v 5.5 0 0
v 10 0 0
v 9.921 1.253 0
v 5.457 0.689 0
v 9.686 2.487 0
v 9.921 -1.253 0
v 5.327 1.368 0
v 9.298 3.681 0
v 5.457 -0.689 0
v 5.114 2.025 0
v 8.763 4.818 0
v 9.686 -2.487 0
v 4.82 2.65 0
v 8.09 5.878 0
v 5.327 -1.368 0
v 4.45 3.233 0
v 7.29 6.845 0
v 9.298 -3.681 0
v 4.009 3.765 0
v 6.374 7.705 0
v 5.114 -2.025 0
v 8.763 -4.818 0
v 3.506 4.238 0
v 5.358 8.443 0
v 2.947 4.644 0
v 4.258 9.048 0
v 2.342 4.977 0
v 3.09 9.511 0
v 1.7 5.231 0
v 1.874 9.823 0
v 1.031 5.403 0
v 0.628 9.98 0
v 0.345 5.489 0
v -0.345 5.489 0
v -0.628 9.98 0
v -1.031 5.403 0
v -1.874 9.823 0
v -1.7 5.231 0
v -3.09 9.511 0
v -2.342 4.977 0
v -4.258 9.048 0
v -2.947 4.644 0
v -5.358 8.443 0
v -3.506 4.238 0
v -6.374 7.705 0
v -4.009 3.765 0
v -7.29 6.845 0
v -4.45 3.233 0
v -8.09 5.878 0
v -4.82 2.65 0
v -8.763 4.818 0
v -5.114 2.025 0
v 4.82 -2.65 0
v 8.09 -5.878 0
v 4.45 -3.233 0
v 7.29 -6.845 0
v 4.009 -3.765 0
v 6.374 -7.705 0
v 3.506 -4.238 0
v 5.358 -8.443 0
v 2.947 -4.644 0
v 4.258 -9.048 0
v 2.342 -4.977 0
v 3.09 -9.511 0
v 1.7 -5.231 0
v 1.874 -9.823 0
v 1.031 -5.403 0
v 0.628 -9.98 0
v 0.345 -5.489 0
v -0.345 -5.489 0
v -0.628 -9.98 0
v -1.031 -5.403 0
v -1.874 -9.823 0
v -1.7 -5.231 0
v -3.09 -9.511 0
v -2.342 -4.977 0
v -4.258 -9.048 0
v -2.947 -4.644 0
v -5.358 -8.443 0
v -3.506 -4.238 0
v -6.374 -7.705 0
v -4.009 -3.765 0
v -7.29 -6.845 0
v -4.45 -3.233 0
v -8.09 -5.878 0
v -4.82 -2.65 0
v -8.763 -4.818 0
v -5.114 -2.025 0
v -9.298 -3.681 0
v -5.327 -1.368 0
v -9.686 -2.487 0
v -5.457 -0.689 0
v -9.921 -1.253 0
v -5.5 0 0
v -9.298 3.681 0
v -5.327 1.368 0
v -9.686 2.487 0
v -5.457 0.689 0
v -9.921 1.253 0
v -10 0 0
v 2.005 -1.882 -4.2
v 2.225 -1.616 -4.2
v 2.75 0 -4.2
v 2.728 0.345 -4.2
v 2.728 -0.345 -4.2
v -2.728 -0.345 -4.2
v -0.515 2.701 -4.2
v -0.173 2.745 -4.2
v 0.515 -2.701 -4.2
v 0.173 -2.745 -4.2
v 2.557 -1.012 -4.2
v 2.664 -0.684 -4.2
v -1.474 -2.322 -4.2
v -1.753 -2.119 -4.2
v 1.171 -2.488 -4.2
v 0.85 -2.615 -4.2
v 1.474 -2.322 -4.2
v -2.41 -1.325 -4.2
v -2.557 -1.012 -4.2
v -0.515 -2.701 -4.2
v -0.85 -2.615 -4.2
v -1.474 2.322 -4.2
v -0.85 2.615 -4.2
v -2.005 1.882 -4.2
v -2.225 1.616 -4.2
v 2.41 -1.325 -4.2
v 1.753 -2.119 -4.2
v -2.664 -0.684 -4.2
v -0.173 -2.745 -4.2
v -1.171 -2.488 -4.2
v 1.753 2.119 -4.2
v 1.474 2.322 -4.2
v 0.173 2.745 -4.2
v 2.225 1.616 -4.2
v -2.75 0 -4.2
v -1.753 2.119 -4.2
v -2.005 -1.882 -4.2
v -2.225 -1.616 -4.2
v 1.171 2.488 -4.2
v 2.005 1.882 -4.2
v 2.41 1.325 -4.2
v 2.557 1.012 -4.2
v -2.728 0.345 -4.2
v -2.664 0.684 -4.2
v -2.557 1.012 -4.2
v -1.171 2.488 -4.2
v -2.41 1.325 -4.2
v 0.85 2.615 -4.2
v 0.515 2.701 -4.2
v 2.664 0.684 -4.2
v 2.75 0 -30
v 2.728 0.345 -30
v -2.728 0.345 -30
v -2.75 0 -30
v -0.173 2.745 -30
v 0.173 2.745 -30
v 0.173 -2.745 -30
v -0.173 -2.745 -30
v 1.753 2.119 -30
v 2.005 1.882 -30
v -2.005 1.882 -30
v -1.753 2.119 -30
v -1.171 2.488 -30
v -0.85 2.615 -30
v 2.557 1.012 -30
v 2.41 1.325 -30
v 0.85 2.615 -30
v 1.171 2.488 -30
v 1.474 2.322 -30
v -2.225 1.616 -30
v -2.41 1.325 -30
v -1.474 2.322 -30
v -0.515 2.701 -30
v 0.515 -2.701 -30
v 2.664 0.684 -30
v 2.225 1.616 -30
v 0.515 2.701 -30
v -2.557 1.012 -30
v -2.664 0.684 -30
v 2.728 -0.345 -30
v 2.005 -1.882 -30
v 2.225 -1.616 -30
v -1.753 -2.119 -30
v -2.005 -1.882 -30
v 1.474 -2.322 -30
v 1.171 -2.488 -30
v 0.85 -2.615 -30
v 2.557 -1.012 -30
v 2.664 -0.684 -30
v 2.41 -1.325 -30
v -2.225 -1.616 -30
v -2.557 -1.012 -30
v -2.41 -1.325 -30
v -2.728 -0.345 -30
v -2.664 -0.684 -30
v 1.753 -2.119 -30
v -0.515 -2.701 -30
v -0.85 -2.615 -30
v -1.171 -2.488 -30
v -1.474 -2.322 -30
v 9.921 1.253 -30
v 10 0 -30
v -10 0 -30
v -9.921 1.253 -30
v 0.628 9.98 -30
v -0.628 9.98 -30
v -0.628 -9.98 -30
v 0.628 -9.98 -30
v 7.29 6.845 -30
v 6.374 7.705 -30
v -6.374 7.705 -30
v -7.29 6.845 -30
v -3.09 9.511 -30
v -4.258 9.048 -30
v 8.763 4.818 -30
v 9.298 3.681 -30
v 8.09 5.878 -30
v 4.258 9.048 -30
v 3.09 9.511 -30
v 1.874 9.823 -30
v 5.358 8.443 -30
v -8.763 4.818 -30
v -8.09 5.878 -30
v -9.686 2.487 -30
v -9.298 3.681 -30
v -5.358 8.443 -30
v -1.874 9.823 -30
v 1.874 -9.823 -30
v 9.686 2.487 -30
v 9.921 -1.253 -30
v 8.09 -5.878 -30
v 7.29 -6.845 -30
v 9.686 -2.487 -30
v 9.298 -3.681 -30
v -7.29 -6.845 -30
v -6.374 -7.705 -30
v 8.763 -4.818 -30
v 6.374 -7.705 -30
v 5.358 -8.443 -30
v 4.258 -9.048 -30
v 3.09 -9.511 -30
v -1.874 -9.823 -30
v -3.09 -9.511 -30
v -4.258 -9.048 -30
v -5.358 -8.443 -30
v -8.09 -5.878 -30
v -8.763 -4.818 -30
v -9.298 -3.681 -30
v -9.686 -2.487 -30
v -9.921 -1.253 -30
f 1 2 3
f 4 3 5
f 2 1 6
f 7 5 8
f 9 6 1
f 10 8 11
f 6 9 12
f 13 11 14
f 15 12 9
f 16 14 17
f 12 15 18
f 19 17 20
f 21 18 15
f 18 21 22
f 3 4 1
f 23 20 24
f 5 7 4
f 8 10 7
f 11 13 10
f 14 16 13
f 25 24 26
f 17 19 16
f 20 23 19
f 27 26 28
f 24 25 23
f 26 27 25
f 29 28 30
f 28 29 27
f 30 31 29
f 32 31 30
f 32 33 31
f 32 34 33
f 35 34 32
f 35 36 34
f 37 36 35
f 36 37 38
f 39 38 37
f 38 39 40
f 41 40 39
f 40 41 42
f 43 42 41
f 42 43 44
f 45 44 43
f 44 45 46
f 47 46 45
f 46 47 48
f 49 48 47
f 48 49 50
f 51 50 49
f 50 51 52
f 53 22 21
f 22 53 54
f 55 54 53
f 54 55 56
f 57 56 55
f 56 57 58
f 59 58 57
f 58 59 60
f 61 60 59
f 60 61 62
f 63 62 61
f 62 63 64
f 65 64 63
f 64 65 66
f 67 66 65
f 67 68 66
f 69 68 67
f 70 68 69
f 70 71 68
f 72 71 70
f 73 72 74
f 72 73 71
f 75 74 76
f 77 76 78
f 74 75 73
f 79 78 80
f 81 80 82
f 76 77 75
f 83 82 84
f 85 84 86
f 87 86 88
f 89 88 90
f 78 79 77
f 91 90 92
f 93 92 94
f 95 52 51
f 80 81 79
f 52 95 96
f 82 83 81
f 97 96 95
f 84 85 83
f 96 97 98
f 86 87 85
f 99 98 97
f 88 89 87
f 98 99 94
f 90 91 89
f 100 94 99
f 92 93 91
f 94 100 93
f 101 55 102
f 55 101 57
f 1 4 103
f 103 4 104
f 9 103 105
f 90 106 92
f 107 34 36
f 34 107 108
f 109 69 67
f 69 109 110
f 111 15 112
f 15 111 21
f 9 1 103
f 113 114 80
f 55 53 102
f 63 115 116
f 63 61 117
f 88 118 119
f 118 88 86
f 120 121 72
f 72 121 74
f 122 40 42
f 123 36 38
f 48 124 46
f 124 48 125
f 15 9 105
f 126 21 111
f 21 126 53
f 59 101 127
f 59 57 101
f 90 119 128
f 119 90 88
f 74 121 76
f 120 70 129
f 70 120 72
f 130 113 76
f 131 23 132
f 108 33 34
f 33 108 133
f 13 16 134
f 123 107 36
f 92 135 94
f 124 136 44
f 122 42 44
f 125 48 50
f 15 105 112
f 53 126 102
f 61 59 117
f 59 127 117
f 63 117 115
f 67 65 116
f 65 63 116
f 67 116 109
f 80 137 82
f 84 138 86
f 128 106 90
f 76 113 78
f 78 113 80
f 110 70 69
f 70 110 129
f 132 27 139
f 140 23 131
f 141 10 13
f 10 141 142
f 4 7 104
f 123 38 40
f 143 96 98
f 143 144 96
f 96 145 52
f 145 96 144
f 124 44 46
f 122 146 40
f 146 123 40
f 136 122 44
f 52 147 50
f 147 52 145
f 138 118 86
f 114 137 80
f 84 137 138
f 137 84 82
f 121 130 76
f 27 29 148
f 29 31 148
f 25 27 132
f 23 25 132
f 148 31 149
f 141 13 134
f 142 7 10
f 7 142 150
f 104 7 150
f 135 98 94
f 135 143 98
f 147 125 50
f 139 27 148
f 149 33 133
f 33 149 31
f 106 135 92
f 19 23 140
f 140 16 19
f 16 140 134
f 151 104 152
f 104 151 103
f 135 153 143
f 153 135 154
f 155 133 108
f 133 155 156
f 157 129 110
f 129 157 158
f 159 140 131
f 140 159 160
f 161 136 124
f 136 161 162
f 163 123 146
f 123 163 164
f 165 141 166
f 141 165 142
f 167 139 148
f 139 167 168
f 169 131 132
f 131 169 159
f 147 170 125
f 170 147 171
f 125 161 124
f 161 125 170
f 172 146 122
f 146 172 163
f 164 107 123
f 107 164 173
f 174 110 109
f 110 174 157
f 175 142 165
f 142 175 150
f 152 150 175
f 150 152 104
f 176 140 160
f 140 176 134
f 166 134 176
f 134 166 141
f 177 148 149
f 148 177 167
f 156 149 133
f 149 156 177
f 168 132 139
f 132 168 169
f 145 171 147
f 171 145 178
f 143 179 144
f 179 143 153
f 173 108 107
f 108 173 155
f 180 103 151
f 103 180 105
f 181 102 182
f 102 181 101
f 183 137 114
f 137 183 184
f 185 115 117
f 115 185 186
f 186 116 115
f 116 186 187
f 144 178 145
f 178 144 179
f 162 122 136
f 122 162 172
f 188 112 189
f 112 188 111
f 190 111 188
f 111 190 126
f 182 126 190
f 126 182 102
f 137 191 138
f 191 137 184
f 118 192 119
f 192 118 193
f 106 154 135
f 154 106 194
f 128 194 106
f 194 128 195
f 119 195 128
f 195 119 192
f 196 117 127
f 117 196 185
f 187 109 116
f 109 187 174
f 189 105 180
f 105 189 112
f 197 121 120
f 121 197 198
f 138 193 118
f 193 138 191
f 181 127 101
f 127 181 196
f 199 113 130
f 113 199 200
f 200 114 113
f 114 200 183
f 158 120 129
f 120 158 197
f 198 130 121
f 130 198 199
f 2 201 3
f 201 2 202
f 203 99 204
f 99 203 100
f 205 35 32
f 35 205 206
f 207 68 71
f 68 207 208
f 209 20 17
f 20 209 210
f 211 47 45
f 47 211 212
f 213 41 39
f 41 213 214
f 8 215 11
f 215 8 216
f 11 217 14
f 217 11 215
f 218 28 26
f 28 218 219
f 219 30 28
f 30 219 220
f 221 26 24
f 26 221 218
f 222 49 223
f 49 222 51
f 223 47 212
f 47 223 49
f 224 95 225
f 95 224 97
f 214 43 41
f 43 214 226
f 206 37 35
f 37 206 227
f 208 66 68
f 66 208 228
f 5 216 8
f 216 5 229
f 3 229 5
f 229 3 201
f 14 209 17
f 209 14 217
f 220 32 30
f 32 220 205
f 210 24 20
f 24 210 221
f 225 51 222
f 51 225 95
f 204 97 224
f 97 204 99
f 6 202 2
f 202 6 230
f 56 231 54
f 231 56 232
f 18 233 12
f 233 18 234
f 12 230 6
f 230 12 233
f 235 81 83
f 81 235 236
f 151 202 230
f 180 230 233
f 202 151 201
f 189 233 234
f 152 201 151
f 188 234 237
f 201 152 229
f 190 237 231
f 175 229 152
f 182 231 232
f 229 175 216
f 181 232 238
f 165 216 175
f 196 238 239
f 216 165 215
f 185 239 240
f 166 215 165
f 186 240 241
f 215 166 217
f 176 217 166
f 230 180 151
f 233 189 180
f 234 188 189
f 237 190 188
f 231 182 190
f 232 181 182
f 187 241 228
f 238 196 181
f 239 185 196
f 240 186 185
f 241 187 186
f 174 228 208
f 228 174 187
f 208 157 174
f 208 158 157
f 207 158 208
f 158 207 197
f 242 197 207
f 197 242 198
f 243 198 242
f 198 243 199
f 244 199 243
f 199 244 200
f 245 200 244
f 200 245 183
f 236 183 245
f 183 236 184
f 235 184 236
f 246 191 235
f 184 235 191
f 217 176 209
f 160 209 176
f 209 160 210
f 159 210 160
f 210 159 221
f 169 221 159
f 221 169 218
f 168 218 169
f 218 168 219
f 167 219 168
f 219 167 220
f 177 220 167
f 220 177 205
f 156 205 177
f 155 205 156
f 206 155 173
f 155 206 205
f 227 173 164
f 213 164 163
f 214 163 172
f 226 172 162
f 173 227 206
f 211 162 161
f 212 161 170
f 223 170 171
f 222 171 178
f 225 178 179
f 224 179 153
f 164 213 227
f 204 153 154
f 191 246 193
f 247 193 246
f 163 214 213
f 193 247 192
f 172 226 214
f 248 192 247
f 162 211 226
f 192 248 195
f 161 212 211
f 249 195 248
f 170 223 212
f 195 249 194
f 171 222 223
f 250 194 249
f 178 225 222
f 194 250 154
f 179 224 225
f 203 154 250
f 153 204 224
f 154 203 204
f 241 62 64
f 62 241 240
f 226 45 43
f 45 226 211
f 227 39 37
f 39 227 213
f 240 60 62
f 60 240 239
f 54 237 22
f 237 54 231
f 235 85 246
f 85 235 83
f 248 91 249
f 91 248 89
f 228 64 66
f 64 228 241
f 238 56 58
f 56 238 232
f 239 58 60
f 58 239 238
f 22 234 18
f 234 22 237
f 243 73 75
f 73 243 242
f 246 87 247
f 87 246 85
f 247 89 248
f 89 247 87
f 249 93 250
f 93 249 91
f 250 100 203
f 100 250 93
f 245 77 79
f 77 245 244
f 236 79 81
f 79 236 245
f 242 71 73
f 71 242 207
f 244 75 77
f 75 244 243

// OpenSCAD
$fn = 50;

difference() {
	union() {
		translate(v = [0, 0, -30.0]) {
			cylinder(h = 30, r = 10.0);
		}
	}
	union() {
		translate(v = [0, 0, 0]) {
			rotate(a = [0, 0, 0]) {
				difference() {
					union() {
						translate(v = [0, 0, -33.0]) {
							cylinder(h = 33, r = 2.25);
						}
						translate(v = [0, 0, -4.2]) {
							cylinder(h = 4.2, r1 = 2.75, r2 = 5.5);
						}
						translate(v = [0, 0, -33.0]) {
							cylinder(h = 33, r = 2.75);
						}
						translate(v = [0, 0, -33.0]) {
							cylinder(h = 33, r = 2.25);
						}
					}
					union();
				}
			}
		}
	}
}
